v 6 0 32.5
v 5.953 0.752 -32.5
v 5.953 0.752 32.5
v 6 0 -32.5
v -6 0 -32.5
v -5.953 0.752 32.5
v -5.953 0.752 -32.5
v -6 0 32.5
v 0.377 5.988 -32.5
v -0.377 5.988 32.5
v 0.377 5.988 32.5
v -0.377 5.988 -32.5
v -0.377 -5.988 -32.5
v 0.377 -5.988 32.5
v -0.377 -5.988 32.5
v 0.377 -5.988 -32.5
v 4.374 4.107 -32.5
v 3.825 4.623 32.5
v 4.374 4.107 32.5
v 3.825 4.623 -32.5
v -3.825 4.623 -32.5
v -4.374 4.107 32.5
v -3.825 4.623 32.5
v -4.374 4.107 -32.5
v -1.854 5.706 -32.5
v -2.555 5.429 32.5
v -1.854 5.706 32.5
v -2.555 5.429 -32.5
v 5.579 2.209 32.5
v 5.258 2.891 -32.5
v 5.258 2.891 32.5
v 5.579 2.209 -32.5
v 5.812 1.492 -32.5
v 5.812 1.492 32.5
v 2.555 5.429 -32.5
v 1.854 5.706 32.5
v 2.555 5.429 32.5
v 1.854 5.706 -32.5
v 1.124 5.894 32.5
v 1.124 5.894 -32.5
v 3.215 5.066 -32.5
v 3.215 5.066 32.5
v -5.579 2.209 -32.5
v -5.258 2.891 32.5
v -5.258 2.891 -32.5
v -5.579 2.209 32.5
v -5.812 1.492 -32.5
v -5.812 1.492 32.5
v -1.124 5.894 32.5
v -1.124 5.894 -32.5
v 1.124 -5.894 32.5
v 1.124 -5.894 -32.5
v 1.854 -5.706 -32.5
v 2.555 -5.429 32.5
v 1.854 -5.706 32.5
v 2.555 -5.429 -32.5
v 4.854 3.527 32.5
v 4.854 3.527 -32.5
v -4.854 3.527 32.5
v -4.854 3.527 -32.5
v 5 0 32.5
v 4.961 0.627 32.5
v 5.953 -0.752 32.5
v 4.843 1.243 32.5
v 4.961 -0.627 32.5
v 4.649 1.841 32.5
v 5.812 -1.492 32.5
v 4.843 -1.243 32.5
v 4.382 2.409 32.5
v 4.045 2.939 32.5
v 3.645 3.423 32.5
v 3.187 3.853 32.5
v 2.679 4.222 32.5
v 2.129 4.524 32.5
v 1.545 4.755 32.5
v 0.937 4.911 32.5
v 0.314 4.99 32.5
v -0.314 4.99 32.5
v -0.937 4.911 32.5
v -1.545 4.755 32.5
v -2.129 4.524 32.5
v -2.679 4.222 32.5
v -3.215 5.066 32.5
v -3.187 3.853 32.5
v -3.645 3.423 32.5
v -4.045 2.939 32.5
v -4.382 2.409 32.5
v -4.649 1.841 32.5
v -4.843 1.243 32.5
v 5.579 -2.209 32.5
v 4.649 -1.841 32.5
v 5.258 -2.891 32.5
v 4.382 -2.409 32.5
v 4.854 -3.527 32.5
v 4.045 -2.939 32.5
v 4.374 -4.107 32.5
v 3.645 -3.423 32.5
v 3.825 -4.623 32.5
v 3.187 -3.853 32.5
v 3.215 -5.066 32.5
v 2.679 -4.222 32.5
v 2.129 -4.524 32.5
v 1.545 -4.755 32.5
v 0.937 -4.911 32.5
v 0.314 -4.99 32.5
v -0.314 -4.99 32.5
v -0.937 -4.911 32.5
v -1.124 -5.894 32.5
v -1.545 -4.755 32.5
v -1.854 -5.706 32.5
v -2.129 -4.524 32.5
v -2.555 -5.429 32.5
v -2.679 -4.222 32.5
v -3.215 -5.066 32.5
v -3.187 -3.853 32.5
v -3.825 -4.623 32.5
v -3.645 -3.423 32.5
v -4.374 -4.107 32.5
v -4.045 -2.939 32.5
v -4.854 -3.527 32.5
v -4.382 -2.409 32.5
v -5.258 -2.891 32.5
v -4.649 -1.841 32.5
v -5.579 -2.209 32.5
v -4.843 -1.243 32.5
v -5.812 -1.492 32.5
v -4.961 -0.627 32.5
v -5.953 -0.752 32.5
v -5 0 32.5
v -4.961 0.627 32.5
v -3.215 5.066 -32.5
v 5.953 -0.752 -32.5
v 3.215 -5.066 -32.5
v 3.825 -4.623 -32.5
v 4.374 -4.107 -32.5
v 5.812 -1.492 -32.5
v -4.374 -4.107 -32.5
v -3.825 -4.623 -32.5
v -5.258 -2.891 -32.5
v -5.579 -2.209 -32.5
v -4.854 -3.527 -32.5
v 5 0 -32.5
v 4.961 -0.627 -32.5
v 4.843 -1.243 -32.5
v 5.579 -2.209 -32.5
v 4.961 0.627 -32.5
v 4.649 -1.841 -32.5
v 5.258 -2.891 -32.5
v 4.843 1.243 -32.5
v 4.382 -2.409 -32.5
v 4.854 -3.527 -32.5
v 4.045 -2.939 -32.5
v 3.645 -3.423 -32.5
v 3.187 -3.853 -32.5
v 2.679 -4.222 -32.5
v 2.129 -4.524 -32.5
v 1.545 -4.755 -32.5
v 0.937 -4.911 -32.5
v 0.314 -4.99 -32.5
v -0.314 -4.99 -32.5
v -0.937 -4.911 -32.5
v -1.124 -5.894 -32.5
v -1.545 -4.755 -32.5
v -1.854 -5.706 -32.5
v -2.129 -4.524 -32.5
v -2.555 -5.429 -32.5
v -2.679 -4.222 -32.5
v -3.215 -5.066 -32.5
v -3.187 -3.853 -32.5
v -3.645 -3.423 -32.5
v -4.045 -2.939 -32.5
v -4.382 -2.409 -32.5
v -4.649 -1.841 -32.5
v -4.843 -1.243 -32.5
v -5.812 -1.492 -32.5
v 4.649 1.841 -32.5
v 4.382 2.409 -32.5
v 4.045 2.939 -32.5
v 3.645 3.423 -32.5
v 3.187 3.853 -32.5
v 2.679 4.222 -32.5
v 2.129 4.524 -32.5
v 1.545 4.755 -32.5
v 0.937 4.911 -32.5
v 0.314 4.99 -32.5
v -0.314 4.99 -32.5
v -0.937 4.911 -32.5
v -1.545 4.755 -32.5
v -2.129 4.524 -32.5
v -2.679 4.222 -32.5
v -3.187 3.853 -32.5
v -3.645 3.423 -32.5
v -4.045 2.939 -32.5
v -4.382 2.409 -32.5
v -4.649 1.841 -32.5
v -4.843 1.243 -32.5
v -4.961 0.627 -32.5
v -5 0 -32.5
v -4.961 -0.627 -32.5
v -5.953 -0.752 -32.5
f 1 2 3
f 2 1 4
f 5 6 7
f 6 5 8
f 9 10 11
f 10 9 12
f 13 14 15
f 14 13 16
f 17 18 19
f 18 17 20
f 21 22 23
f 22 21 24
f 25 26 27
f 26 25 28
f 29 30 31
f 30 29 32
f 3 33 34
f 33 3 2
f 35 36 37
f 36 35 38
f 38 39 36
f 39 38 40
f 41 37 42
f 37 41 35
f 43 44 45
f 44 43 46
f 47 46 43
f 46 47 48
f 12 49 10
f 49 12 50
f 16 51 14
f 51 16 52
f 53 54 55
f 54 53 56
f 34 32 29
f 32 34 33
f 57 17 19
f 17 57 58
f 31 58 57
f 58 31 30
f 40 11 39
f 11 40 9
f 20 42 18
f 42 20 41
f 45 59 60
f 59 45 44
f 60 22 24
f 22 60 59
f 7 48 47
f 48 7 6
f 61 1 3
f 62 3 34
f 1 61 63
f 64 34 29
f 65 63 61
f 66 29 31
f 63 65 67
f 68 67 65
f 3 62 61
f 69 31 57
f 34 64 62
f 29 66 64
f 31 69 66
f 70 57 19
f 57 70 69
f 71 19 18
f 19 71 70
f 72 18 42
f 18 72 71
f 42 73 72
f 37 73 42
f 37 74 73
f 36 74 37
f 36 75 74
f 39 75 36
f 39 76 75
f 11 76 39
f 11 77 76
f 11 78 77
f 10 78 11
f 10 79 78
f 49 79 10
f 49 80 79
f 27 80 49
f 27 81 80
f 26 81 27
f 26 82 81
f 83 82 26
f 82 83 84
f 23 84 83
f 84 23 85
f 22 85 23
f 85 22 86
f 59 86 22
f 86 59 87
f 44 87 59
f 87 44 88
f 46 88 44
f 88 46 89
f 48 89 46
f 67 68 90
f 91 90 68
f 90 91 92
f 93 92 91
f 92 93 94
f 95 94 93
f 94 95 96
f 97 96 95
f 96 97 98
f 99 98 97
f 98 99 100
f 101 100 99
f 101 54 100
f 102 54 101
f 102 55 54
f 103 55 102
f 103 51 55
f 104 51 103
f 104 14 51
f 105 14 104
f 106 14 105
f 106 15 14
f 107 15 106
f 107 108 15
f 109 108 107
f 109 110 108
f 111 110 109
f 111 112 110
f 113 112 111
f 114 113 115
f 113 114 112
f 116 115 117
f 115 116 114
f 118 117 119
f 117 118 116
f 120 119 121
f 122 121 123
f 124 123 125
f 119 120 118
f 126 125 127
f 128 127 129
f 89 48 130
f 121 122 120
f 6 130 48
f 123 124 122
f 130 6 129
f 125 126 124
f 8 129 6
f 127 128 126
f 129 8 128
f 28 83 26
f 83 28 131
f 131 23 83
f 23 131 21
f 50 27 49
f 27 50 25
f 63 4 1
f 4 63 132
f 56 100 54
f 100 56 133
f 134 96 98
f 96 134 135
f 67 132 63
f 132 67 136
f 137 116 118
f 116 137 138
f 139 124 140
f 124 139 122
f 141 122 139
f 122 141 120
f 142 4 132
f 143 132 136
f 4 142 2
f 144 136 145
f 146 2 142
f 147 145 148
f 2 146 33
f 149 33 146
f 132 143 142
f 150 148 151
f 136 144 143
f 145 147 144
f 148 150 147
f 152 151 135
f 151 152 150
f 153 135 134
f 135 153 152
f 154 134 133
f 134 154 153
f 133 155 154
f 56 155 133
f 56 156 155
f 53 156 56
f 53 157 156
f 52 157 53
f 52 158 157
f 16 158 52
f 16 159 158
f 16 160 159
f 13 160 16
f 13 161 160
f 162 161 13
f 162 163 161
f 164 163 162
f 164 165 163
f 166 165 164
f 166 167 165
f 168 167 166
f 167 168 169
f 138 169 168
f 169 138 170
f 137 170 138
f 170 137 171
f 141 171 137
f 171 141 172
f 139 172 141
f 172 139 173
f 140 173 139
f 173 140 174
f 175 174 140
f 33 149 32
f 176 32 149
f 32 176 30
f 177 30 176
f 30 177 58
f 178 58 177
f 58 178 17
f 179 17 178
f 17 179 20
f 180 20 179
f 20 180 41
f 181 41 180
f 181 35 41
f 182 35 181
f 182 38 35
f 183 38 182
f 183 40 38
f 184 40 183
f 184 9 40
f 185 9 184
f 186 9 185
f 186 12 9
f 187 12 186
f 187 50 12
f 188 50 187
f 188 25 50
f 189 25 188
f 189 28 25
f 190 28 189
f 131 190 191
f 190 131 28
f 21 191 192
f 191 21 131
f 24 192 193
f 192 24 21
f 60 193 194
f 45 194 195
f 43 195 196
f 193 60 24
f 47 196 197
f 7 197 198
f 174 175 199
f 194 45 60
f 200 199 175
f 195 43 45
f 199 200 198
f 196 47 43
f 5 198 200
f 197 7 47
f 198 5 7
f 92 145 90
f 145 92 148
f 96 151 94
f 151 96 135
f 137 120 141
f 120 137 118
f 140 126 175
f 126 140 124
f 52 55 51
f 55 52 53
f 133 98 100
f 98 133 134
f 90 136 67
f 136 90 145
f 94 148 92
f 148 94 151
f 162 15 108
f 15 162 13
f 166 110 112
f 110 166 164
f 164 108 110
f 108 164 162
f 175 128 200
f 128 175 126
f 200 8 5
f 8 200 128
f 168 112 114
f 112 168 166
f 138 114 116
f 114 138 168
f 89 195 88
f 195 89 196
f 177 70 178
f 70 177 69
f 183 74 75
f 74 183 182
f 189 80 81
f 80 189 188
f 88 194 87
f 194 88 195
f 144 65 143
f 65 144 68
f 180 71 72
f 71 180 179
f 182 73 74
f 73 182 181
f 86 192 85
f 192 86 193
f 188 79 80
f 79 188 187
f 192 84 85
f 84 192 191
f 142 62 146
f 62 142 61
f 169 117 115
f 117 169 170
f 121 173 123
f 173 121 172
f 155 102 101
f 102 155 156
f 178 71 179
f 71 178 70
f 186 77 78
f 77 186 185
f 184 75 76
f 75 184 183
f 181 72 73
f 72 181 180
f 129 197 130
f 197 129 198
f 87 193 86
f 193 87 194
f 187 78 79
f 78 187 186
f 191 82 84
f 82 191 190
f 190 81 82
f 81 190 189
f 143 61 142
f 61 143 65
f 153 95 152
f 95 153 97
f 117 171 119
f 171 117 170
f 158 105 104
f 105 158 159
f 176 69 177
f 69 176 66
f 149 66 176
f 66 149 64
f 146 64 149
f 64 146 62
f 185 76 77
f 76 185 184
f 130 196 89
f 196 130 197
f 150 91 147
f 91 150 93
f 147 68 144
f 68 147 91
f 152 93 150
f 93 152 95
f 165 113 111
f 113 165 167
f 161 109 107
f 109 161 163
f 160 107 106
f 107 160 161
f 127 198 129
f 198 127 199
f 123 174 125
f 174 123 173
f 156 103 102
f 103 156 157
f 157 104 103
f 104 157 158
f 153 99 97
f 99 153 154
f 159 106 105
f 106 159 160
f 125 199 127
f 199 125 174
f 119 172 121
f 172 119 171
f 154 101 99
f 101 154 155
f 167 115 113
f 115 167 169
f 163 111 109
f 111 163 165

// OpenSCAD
$fn = 50;


difference() {
	union() {
		translate(v = [0, 0, -32.5000000000]) {
			cylinder(h = 65, r = 6.0000000000);
		}
	}
	union() {
		translate(v = [0, 0, -100.0000000000]) {
			cylinder(h = 200, r = 5);
		}
	}
}
